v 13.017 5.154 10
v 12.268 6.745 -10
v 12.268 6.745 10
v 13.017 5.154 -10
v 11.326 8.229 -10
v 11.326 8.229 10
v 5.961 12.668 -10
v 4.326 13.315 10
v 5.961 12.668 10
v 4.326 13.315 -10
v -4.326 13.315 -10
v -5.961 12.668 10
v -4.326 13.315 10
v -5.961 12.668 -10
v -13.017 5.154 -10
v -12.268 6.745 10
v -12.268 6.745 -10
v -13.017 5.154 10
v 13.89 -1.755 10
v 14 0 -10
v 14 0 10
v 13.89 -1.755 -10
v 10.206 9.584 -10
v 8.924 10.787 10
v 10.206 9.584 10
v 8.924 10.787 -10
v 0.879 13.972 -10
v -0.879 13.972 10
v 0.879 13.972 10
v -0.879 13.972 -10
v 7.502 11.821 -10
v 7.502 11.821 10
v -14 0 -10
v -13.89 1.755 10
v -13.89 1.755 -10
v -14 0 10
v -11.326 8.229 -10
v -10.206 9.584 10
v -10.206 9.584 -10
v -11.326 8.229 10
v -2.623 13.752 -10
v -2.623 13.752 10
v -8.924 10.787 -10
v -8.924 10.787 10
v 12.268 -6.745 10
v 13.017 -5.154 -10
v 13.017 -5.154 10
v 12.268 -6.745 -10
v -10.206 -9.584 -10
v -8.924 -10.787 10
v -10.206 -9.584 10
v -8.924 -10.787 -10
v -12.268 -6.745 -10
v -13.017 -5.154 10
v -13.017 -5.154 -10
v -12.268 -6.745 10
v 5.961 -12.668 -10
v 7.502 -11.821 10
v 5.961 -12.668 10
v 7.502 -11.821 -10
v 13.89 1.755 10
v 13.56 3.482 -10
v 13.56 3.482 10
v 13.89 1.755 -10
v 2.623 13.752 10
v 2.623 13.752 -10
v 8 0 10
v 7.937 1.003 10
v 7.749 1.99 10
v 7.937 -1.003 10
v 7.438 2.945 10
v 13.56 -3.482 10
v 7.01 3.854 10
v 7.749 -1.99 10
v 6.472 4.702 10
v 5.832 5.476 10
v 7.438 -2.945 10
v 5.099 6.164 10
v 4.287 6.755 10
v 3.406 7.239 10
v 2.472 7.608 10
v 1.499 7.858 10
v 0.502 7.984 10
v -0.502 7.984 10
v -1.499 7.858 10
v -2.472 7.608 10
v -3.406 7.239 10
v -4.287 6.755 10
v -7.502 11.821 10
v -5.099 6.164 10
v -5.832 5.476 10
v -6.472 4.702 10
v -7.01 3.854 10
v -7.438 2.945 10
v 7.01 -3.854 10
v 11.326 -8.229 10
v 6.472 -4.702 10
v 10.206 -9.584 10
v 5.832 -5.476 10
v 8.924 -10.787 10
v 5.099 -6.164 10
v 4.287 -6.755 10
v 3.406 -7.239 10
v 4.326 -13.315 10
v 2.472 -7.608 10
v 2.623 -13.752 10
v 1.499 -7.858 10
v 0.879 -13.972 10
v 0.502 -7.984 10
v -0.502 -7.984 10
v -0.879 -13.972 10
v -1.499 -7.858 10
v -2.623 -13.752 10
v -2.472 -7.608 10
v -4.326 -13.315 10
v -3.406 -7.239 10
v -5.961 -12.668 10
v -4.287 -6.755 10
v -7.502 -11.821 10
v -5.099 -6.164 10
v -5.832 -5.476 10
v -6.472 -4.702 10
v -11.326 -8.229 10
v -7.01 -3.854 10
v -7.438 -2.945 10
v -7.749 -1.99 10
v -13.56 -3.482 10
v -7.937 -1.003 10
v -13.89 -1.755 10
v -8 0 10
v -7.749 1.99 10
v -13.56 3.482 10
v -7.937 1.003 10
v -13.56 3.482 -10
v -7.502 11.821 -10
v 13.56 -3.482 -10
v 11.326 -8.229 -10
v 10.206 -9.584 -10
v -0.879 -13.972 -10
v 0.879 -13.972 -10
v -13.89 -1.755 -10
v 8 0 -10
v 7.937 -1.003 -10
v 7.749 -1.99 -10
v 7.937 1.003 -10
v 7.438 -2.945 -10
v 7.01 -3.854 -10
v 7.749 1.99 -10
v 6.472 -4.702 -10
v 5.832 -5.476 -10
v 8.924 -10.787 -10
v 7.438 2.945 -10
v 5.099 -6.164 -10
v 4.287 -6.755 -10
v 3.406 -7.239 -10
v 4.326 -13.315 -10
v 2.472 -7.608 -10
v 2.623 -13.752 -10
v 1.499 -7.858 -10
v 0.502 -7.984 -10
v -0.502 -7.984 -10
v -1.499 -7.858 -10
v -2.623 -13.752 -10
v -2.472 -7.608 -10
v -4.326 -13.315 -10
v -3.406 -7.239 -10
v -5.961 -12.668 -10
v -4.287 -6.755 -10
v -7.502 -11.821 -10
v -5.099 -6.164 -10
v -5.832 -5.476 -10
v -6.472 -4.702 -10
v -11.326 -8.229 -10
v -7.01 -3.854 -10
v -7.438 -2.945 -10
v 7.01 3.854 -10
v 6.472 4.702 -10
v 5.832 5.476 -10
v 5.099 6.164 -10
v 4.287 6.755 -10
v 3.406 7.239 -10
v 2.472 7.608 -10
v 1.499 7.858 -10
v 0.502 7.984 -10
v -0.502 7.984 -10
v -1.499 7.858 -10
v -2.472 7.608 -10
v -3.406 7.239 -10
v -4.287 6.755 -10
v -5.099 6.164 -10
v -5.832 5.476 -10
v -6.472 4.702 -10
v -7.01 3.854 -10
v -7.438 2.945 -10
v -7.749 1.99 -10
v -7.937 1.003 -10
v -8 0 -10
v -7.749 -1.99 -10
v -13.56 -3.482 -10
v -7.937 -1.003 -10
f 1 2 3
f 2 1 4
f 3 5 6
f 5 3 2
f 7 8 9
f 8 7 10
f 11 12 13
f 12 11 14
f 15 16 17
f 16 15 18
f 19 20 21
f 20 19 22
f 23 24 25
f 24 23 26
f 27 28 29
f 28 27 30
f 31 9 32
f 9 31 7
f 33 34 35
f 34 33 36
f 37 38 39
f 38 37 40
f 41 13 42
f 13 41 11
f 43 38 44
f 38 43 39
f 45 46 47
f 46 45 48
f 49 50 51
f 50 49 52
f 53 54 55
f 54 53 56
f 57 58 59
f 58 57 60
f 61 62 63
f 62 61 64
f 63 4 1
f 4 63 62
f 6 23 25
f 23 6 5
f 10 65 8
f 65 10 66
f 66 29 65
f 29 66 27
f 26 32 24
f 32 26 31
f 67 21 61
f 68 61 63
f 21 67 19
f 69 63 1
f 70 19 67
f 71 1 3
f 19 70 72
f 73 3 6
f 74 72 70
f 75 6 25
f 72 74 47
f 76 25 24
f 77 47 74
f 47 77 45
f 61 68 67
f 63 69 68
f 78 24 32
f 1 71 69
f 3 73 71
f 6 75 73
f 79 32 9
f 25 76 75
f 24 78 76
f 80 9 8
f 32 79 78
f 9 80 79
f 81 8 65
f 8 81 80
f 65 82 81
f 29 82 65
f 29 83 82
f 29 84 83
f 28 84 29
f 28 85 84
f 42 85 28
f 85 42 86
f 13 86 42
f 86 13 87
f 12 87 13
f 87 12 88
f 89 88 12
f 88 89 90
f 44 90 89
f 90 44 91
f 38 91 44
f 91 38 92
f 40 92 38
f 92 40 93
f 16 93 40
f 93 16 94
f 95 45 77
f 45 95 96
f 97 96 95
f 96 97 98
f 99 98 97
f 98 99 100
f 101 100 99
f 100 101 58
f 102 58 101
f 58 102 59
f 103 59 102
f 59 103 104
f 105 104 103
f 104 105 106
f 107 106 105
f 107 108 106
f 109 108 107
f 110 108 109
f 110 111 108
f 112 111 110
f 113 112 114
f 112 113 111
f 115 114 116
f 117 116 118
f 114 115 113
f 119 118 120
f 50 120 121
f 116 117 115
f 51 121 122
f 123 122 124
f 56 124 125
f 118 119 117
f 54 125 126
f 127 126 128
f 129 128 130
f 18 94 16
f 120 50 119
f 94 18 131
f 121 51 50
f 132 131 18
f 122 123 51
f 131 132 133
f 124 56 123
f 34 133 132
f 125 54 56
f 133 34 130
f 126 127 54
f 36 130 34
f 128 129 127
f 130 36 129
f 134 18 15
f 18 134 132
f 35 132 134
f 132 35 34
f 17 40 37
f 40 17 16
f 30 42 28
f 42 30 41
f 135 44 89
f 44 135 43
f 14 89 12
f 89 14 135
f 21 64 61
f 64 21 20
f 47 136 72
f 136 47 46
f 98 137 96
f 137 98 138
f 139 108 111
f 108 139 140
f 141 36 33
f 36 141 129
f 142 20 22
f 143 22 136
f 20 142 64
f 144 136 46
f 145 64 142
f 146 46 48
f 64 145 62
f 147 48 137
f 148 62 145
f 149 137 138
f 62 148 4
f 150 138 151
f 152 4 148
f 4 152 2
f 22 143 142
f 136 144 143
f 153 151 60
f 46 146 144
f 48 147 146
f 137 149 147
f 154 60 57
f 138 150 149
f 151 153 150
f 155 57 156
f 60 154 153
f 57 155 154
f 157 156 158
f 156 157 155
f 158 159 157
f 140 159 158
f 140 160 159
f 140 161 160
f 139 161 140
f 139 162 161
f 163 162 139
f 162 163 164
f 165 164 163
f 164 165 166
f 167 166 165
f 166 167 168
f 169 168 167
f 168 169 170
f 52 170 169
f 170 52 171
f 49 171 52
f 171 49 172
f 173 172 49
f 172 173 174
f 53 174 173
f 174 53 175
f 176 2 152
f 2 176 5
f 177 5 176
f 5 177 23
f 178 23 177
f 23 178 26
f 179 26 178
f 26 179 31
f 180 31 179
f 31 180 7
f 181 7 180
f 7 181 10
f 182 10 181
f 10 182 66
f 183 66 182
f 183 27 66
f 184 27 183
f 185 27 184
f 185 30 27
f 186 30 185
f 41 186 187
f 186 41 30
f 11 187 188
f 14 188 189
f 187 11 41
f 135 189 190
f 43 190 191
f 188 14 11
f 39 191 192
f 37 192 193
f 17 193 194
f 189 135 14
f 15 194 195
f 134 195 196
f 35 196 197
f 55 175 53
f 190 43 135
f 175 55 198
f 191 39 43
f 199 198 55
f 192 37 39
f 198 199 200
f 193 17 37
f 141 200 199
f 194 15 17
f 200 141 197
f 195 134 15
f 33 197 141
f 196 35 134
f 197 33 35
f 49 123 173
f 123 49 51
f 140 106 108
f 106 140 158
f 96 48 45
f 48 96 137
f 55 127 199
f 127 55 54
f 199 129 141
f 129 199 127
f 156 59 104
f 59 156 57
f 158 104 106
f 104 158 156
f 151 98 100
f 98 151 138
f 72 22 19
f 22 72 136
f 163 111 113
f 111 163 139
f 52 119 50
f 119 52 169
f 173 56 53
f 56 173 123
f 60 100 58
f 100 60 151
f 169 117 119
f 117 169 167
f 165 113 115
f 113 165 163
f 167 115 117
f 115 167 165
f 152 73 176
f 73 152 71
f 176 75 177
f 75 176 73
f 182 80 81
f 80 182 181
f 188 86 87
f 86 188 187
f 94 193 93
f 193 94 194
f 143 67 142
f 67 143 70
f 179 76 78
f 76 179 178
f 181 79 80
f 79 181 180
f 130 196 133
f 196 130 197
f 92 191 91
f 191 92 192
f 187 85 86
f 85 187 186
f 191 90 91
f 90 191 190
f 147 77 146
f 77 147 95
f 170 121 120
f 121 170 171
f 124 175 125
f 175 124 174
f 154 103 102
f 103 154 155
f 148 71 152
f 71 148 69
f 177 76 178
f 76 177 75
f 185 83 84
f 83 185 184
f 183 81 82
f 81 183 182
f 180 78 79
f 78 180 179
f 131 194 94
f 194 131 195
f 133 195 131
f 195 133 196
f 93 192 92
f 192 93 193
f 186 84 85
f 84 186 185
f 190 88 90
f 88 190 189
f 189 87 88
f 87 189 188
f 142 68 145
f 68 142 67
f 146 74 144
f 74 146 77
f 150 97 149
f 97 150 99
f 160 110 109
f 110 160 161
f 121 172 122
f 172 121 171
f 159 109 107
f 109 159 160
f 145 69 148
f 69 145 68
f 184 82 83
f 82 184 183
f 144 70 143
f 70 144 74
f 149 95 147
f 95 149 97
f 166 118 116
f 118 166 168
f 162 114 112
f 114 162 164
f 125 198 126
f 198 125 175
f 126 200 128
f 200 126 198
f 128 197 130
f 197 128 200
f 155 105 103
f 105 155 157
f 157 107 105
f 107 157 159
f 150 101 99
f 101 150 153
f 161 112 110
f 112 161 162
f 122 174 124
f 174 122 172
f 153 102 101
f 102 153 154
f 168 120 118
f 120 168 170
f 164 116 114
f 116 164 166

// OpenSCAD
$fn = 50;


difference() {
	union() {
		translate(v = [0, 0, -10.0000000000]) {
			cylinder(h = 20, r = 14.0000000000);
		}
	}
	union() {
		translate(v = [0, 0, -100.0000000000]) {
			cylinder(h = 200, r = 8);
		}
	}
}
